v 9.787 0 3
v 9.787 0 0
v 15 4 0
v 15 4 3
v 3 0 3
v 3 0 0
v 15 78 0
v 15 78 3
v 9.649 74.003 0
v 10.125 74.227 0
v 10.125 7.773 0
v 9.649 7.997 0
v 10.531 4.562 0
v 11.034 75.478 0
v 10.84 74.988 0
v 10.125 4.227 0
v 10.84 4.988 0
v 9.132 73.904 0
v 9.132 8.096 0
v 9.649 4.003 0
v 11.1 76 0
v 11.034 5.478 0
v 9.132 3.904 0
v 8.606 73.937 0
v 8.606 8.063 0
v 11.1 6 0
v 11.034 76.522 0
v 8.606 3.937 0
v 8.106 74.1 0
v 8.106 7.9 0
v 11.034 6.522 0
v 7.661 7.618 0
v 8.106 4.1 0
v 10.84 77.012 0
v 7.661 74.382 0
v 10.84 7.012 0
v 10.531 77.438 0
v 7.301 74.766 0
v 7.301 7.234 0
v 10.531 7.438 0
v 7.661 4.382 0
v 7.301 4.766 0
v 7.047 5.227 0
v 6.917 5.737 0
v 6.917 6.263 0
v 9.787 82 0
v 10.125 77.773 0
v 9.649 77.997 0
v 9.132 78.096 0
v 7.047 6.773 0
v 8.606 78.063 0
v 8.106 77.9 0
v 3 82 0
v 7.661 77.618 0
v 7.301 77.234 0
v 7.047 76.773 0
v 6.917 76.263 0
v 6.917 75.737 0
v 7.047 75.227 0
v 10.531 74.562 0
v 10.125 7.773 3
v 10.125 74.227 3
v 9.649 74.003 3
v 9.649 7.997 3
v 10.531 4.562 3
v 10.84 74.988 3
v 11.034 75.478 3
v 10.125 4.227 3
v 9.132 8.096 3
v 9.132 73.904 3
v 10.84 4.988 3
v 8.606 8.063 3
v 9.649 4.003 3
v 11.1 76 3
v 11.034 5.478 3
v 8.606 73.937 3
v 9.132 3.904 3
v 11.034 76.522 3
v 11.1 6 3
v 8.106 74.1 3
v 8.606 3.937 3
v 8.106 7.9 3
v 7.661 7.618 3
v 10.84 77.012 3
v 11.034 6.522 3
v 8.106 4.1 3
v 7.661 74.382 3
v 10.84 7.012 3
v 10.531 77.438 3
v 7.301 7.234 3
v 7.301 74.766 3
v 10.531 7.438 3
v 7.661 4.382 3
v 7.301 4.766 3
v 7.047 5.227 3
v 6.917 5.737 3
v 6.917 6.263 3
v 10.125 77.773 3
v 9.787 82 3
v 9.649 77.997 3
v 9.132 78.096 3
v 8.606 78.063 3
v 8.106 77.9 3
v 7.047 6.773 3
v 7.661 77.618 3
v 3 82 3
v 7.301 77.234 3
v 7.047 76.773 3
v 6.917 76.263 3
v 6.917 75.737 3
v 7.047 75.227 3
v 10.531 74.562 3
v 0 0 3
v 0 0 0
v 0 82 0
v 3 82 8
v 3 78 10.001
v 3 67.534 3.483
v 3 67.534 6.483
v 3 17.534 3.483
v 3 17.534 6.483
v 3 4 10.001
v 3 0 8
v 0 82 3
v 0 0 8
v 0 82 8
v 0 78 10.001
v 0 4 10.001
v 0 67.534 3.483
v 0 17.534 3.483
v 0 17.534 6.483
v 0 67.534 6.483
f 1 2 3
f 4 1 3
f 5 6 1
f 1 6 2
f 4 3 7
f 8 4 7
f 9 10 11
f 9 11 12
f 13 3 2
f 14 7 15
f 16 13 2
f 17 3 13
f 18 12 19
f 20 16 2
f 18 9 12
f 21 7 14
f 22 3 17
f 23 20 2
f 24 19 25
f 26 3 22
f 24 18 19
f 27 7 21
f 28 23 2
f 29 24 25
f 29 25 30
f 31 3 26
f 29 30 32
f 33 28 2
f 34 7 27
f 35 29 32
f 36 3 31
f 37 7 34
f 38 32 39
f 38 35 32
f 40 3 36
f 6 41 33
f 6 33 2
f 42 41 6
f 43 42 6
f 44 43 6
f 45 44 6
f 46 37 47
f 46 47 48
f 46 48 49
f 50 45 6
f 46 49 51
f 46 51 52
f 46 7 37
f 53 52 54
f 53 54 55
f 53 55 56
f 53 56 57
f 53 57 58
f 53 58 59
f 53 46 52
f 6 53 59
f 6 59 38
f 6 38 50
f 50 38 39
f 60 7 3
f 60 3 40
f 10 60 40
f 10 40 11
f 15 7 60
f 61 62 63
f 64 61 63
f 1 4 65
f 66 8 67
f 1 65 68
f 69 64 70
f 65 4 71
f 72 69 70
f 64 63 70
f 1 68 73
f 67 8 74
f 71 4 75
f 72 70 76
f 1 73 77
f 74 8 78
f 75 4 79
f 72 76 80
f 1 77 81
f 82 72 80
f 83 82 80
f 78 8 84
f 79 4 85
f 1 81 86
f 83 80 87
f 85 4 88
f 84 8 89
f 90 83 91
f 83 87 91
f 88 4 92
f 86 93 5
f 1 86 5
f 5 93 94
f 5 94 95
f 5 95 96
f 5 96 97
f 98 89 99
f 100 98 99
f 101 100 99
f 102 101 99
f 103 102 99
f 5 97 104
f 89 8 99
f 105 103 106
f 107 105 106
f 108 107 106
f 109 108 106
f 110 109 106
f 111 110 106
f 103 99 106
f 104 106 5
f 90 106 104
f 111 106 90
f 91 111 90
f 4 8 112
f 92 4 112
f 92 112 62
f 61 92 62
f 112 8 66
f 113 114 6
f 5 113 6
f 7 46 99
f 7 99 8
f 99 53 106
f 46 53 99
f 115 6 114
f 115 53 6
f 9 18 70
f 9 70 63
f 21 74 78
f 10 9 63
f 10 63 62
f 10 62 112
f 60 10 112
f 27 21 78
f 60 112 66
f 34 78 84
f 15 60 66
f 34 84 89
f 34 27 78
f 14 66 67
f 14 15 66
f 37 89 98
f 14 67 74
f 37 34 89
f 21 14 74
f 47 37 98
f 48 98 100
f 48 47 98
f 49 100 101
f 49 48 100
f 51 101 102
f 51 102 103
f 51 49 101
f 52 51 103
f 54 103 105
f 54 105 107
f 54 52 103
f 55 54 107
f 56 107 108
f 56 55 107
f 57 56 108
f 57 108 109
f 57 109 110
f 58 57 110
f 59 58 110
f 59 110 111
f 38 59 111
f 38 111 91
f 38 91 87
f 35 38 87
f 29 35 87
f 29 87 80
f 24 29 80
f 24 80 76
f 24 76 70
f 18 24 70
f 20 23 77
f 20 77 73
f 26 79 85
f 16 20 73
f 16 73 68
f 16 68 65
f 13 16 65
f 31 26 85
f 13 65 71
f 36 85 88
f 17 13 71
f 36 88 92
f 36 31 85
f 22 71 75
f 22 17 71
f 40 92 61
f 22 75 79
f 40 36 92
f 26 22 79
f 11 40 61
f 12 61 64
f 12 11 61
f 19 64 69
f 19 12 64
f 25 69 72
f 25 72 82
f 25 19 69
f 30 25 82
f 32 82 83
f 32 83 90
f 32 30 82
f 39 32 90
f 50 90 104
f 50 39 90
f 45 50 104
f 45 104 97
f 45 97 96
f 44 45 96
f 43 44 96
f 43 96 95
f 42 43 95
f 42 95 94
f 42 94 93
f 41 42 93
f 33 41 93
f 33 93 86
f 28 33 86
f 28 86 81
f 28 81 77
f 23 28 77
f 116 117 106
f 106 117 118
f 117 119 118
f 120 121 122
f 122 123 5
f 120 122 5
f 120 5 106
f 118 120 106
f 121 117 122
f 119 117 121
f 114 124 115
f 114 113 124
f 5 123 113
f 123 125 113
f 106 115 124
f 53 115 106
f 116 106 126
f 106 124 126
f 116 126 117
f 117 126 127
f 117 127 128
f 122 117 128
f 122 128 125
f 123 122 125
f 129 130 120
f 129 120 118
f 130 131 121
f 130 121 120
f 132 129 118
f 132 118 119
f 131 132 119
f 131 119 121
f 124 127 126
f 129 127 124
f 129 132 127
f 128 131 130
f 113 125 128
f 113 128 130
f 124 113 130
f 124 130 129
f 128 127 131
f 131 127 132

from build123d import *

# Parameters (mm, degrees)
SKETCH001_W  = 50
SKETCH001_H  = 3
PAD001_DEPTH = 3
SKETCH_R     = 2.1
PAD_DEPTH    = 3


with BuildPart() as pad001:
    # Sketch001 → Pad001 (new body)
    with BuildSketch(Plane.YZ):
        Polygon((0, 0), (82, 0), (82, 8), (78, 10.001209), (4, 10.001209), (0, 8), align=None)
        with Locations((42.5338, 4.983344)):
            Rectangle(SKETCH001_W, SKETCH001_H, mode=Mode.SUBTRACT)
    extrude(amount=PAD001_DEPTH)


with BuildPart() as fusion:
    # Sketch → Pad (new body)
    with BuildSketch(Plane.XY):
        Polygon((0, 82), (0, 0), (9.787406, 0), (14.999606, 4), (14.999606, 78), (9.787406, 82), align=None)
        with Locations((9, 6)):
            Circle(SKETCH_R, mode=Mode.SUBTRACT)
        with Locations((9, 76)):
            Circle(SKETCH_R, mode=Mode.SUBTRACT)
    extrude(amount=PAD_DEPTH)

    # Fusion: union Pad001
    add(pad001.part)


solid = fusion.part
